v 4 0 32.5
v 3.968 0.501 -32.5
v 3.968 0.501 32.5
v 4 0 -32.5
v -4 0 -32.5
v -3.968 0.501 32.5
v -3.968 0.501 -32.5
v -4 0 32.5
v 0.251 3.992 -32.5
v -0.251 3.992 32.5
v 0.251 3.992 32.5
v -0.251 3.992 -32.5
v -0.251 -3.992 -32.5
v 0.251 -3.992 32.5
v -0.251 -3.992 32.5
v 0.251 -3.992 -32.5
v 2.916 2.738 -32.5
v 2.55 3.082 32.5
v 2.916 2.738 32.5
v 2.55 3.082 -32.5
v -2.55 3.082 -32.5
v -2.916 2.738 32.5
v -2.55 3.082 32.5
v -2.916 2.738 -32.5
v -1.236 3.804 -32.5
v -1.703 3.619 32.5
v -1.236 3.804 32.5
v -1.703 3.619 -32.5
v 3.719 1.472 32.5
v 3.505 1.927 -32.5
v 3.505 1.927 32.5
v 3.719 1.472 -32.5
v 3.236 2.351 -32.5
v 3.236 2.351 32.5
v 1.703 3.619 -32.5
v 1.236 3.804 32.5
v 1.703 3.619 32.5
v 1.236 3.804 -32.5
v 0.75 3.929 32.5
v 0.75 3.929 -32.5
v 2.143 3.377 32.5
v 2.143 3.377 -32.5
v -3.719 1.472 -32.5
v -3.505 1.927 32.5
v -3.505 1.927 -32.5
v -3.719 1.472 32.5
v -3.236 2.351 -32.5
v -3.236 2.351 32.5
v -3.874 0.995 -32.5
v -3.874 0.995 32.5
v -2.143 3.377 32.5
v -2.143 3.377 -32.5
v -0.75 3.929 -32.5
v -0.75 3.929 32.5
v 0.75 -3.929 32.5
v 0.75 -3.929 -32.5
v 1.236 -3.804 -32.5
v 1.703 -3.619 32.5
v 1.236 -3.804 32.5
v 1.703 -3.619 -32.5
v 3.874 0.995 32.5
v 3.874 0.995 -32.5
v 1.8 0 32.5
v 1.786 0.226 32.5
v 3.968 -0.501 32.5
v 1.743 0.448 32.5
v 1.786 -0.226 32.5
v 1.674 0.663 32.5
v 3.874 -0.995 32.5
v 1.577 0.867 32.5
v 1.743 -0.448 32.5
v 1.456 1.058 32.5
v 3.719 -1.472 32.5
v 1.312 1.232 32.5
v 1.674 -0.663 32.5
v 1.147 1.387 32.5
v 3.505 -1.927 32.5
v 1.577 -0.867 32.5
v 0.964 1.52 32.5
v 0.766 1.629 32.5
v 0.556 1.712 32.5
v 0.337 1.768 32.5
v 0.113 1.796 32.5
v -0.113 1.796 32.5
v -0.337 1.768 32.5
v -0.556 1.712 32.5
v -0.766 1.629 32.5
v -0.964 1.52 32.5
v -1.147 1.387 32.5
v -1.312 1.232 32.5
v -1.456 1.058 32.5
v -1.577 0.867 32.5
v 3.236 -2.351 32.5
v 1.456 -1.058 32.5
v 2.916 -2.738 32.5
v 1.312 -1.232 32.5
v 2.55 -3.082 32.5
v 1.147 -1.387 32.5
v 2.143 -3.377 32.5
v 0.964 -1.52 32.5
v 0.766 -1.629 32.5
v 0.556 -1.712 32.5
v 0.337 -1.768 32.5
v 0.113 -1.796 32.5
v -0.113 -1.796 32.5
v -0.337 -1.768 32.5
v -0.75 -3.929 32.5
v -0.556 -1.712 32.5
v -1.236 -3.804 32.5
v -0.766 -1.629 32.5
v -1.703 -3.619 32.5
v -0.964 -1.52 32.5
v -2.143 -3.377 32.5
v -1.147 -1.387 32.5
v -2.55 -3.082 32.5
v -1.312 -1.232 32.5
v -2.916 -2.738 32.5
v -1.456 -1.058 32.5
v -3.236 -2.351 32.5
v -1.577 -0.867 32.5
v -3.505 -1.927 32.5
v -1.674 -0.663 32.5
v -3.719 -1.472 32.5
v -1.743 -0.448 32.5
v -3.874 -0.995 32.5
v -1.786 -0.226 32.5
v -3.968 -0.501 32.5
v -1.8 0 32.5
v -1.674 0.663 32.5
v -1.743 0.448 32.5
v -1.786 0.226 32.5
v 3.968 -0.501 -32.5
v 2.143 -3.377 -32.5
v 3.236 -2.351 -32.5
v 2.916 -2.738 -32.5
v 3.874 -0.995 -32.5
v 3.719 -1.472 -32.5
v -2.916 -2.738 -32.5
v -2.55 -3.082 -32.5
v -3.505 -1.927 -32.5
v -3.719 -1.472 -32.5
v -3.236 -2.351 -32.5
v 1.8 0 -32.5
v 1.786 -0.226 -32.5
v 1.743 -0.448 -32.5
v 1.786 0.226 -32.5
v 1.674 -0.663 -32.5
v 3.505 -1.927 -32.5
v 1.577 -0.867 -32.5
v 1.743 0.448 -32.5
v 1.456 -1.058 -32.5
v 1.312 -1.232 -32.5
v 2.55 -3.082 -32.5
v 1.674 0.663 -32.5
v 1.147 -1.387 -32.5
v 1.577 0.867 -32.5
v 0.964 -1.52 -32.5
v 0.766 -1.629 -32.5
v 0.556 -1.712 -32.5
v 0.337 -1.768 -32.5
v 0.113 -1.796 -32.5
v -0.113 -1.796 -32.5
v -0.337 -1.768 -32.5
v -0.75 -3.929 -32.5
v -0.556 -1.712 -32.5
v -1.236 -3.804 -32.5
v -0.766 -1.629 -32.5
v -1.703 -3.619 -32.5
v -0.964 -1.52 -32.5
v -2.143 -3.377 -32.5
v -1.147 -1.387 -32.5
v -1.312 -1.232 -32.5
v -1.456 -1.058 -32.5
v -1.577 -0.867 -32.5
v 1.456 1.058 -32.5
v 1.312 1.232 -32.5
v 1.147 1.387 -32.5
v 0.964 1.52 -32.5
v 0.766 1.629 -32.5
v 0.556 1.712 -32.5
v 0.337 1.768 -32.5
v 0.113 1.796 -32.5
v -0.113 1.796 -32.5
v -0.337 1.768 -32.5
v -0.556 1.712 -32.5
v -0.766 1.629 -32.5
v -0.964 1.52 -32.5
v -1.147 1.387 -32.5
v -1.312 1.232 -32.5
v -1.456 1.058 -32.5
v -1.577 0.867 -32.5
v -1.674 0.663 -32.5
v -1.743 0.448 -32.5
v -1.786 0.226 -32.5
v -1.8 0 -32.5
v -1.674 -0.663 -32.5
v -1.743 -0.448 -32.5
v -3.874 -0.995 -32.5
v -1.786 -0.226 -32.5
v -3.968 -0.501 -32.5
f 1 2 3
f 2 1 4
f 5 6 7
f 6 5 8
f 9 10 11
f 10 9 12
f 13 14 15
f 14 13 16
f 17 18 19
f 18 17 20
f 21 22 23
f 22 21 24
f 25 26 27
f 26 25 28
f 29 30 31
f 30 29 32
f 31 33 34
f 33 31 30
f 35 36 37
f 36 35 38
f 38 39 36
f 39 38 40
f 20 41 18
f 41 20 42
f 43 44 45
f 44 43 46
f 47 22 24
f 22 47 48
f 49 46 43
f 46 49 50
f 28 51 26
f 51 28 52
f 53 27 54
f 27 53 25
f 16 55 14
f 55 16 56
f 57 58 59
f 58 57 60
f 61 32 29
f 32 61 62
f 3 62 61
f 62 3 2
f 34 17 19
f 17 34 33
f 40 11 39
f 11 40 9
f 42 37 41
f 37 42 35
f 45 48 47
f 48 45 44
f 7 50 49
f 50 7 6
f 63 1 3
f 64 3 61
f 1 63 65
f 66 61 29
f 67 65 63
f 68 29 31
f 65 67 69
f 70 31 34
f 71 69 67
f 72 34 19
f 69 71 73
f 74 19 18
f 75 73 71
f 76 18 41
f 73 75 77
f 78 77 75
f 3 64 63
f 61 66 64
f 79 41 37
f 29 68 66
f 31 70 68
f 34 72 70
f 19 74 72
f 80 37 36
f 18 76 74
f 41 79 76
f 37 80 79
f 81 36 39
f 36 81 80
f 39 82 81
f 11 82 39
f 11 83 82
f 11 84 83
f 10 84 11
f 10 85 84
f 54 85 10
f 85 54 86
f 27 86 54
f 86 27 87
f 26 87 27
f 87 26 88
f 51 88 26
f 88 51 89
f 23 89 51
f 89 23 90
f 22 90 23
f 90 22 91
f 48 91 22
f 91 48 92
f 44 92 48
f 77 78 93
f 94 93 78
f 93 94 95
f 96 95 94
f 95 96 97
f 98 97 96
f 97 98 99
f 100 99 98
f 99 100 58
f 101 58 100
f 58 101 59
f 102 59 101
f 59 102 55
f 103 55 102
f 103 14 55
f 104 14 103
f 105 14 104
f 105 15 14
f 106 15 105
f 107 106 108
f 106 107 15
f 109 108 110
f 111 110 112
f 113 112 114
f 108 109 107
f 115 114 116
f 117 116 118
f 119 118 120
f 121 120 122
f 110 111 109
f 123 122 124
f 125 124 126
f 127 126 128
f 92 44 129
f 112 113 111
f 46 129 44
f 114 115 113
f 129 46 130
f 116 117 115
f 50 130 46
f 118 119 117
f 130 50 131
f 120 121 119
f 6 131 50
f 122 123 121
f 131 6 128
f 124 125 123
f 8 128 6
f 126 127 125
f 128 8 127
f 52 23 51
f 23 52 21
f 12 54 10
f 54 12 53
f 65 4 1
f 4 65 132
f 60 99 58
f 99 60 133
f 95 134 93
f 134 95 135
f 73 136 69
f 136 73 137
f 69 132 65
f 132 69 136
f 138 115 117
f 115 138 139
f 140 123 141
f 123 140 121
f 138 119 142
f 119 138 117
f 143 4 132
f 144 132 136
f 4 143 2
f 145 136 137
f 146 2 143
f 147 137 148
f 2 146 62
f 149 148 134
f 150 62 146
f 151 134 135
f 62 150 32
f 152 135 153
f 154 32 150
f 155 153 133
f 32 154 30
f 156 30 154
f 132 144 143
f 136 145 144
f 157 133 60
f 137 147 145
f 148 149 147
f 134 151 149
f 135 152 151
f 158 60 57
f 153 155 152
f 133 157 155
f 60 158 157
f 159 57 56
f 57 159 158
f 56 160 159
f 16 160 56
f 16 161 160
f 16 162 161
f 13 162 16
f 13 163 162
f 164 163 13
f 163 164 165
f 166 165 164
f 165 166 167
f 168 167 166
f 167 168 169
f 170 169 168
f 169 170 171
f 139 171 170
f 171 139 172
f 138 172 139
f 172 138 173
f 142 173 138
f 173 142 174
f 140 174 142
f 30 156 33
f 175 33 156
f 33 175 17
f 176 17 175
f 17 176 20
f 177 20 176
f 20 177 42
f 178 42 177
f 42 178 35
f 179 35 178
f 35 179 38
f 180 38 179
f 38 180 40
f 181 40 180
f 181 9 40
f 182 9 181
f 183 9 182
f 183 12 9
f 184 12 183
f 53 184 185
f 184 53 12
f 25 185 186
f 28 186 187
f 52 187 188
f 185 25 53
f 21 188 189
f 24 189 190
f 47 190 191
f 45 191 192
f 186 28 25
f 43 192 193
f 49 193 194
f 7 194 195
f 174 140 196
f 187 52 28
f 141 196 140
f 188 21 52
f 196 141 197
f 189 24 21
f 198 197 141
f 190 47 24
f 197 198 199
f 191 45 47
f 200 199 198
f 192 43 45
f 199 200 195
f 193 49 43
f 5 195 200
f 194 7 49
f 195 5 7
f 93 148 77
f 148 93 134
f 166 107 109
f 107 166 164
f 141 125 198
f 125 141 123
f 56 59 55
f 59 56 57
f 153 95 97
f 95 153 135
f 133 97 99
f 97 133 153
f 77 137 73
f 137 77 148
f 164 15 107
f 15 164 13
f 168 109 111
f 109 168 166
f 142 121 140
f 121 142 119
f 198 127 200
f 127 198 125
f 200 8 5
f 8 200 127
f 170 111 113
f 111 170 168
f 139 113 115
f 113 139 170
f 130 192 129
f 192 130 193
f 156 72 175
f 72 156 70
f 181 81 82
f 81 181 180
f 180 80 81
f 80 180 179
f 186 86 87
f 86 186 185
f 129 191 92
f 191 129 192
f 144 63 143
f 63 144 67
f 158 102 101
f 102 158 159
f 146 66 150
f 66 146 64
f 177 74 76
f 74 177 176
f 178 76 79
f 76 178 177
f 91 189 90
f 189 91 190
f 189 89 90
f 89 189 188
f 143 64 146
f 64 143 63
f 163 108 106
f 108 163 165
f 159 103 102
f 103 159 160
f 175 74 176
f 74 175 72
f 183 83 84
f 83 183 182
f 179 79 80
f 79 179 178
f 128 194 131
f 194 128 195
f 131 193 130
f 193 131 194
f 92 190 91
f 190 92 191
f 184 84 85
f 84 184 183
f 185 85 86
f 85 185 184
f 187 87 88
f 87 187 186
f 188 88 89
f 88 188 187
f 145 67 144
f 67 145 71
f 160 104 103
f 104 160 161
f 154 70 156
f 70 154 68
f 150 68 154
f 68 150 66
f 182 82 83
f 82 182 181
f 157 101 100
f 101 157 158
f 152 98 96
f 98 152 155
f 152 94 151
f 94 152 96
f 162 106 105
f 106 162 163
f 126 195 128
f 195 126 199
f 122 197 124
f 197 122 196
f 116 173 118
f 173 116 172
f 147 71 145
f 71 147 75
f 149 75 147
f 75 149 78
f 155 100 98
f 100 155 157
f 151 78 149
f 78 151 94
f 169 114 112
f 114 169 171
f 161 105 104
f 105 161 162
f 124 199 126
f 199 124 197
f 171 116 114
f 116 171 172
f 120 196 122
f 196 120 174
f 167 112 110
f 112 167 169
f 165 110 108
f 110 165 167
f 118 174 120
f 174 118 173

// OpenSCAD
$fn = 50;


difference() {
	union() {
		translate(v = [0, 0, -32.5000000000]) {
			cylinder(h = 65, r = 4.0000000000);
		}
	}
	union() {
		translate(v = [0, 0, -100.0000000000]) {
			cylinder(h = 200, r = 1.8000000000);
		}
	}
}
